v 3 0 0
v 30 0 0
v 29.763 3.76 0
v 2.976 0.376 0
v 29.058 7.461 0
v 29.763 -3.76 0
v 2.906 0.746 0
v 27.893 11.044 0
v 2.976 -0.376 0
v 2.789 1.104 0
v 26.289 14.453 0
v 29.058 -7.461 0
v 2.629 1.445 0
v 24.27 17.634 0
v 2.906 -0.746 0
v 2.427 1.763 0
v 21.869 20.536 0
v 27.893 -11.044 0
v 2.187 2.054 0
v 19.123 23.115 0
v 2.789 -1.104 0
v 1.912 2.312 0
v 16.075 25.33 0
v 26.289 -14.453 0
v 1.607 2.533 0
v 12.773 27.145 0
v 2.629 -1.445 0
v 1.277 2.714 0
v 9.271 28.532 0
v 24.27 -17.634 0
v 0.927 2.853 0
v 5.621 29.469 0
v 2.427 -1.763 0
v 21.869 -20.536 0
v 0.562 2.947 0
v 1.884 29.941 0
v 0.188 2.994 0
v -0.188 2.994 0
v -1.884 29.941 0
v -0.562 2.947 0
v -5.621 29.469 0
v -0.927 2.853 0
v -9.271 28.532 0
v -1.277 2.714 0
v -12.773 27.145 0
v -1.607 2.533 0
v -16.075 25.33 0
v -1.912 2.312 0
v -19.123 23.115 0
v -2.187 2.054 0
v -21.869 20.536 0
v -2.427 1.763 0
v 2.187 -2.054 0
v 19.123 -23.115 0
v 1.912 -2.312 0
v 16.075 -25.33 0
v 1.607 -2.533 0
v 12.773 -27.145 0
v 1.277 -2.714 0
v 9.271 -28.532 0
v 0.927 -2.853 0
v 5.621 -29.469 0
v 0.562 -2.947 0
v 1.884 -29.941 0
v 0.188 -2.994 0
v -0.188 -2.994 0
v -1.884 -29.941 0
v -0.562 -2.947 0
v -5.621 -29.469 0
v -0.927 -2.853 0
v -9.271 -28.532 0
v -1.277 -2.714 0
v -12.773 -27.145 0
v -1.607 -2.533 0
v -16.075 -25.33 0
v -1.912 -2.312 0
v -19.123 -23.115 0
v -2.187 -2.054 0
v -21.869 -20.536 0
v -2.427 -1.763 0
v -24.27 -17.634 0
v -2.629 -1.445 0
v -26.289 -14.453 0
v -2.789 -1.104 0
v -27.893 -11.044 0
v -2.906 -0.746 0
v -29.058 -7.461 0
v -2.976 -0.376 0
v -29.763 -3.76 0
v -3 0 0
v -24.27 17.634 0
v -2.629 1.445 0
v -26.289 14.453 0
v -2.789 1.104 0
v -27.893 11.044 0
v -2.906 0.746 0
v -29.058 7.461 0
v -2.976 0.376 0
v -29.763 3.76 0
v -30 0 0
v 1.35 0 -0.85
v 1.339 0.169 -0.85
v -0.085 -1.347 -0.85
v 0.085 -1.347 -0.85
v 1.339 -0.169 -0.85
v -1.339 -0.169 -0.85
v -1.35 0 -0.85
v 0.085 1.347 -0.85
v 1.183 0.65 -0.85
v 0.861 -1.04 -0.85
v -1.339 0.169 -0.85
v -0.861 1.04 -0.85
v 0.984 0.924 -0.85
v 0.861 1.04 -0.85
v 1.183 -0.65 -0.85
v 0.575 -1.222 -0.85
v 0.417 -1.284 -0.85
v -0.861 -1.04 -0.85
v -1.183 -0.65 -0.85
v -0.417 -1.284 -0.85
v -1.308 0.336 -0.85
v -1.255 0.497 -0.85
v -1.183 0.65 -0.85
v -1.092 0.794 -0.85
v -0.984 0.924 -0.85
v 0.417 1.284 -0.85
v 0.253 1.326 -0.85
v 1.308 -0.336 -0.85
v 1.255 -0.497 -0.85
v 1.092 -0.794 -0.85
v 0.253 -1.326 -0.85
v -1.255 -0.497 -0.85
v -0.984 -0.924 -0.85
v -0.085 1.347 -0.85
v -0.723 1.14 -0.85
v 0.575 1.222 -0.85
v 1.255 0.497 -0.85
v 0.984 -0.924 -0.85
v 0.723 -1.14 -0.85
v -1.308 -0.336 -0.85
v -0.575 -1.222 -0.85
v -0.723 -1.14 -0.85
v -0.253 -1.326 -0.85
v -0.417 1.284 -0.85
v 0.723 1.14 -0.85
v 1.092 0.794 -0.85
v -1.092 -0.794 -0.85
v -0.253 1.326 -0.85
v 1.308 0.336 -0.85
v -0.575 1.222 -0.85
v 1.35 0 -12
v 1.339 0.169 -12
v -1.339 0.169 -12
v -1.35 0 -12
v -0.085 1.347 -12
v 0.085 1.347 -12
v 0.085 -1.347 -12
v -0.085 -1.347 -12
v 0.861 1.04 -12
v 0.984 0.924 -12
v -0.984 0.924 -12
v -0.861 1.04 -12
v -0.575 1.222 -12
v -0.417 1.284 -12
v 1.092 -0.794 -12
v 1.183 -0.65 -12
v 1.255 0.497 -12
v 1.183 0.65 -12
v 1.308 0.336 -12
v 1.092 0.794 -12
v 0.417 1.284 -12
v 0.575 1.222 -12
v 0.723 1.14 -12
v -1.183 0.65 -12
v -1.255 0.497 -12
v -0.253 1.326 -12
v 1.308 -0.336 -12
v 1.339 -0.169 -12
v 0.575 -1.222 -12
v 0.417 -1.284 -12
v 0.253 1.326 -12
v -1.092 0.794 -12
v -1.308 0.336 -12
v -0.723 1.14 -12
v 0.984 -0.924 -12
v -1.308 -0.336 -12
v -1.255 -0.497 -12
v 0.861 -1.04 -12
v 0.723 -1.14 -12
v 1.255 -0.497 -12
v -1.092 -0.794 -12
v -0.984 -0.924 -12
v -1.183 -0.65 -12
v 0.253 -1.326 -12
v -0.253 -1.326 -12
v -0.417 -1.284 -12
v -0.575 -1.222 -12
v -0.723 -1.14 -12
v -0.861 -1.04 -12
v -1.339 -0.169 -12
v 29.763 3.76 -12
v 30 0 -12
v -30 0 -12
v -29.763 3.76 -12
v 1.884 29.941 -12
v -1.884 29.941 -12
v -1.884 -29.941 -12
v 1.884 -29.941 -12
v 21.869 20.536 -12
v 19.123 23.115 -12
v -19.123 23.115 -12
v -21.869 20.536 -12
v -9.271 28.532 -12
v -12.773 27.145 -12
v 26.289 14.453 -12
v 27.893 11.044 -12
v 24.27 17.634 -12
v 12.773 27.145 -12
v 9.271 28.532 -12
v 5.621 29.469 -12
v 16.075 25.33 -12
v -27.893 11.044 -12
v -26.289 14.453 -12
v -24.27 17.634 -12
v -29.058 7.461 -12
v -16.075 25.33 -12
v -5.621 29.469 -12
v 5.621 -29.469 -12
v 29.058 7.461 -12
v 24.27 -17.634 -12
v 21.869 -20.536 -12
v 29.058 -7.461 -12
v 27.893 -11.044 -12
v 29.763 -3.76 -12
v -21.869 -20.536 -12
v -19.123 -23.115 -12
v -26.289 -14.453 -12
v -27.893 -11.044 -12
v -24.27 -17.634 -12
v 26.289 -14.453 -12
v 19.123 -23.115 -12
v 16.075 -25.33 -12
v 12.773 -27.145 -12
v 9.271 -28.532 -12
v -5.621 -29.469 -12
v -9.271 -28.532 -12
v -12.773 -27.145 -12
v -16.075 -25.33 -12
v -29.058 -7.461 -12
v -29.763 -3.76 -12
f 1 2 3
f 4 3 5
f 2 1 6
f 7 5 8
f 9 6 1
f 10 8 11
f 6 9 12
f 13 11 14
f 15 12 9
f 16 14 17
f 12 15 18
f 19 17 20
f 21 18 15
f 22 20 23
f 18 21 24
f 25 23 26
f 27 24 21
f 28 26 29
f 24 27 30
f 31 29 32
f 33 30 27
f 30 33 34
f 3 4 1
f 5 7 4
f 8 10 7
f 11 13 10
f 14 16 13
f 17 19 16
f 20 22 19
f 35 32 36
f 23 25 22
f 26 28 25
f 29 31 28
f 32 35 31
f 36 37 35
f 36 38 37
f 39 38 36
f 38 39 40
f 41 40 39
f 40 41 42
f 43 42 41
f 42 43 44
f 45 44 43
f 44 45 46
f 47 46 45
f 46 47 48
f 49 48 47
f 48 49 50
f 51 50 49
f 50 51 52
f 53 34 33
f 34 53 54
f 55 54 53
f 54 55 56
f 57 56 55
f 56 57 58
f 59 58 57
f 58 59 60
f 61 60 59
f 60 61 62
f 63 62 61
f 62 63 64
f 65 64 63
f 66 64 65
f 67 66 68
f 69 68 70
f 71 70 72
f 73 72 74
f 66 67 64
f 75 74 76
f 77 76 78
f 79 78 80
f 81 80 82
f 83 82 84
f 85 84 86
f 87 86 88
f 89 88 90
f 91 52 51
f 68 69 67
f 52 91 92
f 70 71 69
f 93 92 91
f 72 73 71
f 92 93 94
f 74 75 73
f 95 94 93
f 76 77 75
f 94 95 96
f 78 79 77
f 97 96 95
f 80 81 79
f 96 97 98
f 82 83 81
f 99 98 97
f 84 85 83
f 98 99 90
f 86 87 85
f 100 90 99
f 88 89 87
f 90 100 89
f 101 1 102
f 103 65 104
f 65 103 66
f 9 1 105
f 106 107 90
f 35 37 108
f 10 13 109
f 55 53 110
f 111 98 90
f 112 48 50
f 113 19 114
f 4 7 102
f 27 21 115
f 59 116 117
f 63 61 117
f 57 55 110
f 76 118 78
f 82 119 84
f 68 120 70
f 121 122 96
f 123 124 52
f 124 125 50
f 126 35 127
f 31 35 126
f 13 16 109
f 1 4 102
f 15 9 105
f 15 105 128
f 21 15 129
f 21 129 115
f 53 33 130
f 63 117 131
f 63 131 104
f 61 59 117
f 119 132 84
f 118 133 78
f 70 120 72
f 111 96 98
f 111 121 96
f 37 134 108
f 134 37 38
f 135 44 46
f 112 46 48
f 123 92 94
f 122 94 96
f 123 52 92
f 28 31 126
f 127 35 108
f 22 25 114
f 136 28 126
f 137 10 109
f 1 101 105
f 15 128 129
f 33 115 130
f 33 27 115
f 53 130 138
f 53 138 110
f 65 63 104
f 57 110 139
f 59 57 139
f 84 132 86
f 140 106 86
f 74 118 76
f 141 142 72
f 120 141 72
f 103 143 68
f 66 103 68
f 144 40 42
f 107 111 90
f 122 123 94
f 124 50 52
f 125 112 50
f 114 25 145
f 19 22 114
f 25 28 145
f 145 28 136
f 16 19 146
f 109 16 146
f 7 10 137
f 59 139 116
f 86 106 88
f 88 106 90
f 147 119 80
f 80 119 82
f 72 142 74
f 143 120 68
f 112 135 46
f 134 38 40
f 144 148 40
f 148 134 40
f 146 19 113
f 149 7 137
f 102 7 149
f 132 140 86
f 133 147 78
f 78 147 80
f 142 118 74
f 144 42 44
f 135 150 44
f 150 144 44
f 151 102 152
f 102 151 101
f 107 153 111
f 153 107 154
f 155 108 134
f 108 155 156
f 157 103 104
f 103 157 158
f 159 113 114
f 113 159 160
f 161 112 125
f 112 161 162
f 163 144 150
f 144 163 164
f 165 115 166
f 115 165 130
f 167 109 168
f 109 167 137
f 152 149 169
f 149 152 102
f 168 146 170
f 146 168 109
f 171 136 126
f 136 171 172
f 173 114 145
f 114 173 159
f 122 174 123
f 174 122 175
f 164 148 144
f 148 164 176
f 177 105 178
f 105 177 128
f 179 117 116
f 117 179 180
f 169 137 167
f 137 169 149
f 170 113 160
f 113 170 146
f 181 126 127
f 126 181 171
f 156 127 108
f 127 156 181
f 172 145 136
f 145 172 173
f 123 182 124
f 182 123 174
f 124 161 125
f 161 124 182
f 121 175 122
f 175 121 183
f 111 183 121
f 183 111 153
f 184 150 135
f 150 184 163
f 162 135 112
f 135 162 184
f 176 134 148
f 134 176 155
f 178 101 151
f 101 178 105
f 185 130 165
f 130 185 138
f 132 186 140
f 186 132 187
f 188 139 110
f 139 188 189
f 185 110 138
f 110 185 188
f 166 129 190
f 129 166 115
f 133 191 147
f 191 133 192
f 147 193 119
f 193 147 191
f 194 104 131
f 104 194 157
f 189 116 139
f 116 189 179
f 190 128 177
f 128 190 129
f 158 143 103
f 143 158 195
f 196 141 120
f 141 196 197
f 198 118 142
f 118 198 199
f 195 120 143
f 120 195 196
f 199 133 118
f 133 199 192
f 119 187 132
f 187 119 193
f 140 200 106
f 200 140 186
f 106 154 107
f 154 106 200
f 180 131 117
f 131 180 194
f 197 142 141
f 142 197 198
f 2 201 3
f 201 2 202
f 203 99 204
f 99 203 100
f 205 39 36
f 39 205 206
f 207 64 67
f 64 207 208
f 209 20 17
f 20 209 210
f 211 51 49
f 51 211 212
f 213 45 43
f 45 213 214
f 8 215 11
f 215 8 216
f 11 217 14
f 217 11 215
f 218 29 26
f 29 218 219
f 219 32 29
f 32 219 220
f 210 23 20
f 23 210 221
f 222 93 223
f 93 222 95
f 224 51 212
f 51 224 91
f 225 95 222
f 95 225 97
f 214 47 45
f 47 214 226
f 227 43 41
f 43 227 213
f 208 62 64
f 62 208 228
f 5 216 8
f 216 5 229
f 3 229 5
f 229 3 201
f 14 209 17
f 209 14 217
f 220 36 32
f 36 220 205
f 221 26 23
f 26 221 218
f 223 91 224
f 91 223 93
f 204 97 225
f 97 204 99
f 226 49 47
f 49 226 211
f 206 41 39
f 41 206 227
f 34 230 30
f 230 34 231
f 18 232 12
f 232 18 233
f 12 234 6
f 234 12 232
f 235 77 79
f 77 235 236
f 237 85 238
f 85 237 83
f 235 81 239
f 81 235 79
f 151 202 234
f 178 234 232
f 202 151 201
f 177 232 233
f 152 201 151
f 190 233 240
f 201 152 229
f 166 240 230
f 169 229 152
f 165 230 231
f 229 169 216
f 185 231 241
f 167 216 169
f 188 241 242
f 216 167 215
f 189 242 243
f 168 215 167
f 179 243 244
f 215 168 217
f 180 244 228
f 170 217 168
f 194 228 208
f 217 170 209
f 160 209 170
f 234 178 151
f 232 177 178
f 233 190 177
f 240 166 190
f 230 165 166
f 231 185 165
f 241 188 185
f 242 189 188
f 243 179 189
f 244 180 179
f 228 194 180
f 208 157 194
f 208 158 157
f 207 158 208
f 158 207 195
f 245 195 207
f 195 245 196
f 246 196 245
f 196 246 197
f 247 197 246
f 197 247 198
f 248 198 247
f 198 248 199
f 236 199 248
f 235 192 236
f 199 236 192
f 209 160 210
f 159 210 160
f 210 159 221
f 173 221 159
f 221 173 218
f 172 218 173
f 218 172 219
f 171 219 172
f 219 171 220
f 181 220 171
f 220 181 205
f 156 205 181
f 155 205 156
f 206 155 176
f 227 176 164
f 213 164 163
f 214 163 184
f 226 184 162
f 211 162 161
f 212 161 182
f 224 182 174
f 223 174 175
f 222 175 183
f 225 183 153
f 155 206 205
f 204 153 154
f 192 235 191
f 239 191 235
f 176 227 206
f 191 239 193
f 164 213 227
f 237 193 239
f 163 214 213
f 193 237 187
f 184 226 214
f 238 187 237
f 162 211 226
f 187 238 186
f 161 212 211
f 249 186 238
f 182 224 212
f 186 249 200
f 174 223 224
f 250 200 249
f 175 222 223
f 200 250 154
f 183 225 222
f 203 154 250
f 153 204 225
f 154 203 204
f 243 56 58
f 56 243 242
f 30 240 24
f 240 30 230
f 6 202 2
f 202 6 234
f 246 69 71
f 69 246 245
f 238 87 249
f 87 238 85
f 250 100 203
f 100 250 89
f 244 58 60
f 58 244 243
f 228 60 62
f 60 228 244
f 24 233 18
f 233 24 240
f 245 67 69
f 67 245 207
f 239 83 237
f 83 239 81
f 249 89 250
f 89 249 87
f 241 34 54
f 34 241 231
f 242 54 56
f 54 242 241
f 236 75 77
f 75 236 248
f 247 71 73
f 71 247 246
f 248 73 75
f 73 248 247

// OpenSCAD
$fn = 50;

difference() {
	union() {
		translate(v = [0, 0, -12.0]) {
			cylinder(h = 12, r = 30.0);
		}
	}
	union() {
		translate(v = [0, 0, 0]) {
			rotate(a = [0, 0, 0]) {
				difference() {
					union() {
						translate(v = [0, 0, -15.0]) {
							cylinder(h = 15, r = 1.0);
						}
						translate(v = [0, 0, -0.85]) {
							cylinder(h = 0.85, r1 = 1.35, r2 = 3.0);
						}
						translate(v = [0, 0, -15.0]) {
							cylinder(h = 15, r = 1.35);
						}
						translate(v = [0, 0, -15.0]) {
							cylinder(h = 15, r = 1.0);
						}
					}
					union();
				}
			}
		}
	}
}
